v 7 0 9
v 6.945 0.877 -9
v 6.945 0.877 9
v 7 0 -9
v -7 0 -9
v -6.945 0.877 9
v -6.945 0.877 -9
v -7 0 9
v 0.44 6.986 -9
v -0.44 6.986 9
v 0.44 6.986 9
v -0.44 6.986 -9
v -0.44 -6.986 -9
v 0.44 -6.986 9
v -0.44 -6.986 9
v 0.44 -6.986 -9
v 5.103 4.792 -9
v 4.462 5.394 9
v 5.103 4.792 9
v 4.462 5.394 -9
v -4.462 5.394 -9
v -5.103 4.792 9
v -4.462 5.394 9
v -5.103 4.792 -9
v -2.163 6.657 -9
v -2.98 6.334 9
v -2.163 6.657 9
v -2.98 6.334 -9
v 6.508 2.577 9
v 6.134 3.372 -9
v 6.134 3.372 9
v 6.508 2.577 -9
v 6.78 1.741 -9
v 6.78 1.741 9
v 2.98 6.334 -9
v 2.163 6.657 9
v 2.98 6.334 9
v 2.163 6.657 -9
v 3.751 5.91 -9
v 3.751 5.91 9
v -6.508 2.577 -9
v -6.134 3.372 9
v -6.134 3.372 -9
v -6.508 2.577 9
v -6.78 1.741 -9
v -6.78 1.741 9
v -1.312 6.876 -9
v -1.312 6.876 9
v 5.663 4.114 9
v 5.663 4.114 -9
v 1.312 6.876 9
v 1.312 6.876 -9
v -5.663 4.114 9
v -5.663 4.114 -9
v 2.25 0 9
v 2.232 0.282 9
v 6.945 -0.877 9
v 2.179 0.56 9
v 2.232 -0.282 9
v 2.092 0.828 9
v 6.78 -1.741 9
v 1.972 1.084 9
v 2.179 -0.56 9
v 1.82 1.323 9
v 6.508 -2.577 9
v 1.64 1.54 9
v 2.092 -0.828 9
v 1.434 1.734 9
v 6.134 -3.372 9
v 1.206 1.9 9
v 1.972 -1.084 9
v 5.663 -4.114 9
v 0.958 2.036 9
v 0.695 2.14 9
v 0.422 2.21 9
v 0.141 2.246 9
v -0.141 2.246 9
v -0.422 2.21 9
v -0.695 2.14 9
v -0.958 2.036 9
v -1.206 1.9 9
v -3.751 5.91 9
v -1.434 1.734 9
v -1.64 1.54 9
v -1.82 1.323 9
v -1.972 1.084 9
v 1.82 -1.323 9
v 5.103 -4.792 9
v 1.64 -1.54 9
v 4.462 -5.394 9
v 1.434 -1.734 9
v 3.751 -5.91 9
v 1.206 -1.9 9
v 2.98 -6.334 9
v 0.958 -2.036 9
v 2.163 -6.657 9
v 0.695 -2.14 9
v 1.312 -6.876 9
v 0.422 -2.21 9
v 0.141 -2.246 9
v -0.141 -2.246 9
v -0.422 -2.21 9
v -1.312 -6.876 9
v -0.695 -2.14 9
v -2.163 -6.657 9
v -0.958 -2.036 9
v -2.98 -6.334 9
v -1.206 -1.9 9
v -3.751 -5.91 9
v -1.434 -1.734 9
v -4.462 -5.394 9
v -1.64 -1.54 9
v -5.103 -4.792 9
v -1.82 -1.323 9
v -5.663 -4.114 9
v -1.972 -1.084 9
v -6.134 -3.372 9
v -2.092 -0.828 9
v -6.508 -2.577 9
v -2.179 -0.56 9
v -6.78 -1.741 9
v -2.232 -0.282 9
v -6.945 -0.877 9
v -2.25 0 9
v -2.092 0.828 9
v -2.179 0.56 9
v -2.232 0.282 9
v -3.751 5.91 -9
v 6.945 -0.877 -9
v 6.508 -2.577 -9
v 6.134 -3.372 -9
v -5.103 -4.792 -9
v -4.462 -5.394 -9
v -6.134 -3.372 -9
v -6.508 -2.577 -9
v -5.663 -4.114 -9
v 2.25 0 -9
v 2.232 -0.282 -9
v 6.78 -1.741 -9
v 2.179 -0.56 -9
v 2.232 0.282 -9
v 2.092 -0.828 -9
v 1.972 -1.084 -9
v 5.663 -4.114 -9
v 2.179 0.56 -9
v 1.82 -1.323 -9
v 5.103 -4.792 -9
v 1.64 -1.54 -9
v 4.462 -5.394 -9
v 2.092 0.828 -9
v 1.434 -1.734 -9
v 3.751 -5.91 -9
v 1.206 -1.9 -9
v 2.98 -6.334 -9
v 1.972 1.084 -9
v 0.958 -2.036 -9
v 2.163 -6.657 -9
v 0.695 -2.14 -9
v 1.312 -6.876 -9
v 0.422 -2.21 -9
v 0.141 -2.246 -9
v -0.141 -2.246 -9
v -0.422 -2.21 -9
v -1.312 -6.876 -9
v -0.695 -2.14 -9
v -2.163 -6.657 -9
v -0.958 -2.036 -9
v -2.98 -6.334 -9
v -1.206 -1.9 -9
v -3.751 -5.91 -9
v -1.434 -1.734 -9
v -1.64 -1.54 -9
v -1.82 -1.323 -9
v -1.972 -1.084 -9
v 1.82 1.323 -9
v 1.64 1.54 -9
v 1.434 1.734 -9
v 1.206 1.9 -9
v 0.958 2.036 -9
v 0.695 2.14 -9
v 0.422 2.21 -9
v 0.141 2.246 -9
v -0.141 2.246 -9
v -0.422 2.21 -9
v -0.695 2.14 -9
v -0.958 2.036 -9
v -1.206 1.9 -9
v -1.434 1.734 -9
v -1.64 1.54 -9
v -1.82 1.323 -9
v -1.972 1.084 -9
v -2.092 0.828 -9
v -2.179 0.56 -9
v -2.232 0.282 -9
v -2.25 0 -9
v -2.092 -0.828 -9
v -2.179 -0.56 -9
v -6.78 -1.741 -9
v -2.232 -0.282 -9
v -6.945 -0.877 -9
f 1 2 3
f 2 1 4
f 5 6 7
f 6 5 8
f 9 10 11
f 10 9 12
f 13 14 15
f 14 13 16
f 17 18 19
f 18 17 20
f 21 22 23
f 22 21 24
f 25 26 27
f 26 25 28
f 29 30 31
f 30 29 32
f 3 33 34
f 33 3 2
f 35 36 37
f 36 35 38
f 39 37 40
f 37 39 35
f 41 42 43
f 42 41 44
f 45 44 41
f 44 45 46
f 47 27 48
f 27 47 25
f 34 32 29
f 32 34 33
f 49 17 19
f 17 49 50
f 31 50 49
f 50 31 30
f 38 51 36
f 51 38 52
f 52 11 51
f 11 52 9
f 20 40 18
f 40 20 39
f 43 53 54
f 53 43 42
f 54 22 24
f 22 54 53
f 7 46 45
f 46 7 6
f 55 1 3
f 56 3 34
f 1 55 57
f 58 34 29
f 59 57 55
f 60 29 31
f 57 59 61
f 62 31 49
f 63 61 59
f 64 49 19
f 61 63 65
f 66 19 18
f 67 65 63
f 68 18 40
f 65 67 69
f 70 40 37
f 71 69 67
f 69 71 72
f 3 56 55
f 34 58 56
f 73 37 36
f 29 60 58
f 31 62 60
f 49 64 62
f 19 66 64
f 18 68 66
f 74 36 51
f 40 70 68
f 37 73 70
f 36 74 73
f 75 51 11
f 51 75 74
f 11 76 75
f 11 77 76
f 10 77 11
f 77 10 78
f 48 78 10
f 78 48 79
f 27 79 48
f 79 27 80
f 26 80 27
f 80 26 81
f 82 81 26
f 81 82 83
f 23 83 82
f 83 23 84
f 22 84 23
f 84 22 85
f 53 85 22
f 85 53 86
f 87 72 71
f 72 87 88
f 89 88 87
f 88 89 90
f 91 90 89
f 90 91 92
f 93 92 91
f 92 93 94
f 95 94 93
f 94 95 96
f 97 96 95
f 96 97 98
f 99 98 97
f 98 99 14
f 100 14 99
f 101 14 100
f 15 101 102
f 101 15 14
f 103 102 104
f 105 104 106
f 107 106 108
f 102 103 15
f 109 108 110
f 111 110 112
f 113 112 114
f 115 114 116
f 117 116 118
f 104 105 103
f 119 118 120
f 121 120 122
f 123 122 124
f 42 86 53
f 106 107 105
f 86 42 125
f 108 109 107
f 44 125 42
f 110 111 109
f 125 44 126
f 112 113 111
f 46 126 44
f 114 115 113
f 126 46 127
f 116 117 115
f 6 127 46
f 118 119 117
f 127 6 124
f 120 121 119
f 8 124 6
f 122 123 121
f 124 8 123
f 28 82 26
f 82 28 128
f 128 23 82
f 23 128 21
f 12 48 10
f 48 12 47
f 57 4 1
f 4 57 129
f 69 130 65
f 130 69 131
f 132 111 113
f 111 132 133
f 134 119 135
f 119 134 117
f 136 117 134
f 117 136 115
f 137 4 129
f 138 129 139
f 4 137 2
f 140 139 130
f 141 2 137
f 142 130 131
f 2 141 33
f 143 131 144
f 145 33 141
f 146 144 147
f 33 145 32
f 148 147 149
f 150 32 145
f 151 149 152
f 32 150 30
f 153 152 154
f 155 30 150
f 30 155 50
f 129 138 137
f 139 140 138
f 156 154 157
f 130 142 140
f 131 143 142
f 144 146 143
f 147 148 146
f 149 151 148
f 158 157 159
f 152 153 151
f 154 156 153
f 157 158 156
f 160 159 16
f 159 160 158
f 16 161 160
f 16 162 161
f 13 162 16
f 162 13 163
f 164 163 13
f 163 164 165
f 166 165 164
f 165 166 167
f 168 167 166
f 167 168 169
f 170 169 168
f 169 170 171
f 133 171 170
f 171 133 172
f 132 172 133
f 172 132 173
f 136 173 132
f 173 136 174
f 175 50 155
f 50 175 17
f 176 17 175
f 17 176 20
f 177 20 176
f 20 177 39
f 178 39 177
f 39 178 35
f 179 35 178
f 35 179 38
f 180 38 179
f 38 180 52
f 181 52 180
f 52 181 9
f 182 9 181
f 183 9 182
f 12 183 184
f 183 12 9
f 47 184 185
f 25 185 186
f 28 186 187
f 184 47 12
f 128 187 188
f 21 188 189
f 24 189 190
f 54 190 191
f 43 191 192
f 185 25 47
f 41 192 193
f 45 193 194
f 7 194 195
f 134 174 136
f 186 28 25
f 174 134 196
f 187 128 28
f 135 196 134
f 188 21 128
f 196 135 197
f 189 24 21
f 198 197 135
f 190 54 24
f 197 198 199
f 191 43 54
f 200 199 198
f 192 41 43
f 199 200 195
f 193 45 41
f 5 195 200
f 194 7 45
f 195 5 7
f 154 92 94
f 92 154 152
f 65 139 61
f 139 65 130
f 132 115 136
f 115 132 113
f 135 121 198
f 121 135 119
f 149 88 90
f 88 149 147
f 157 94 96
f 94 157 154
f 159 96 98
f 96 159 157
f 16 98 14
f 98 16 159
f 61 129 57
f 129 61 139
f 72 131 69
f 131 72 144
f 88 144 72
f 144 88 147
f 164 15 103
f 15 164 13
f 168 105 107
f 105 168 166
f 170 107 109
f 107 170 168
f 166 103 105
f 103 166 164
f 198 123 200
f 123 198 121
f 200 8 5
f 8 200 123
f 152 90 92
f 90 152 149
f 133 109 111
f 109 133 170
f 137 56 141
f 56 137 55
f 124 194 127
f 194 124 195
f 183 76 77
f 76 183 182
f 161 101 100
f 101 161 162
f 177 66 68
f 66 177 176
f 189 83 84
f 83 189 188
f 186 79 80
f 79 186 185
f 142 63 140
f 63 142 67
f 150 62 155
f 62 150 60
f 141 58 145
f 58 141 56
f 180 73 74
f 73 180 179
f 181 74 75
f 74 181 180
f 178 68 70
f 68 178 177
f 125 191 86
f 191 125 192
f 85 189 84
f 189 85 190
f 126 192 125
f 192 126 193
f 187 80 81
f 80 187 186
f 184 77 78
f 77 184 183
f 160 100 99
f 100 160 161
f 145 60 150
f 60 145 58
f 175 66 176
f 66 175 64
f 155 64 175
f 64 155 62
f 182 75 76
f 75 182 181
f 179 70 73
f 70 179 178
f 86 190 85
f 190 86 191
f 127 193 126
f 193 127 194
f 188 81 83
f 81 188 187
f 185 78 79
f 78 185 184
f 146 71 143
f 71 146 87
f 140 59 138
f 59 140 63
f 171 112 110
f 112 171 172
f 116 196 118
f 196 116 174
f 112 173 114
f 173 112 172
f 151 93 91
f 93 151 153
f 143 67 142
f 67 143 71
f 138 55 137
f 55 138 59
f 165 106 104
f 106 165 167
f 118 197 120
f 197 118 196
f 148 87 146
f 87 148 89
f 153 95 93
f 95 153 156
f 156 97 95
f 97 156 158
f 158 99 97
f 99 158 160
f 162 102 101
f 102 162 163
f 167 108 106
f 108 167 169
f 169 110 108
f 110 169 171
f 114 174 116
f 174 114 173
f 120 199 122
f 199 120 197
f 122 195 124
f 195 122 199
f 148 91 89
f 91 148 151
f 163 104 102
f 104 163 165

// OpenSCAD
$fn = 50;


difference() {
	union() {
		translate(v = [0, 0, -9.0000000000]) {
			cylinder(h = 18, r = 7.0000000000);
		}
	}
	union() {
		translate(v = [0, 0, -100.0000000000]) {
			cylinder(h = 200, r = 2.2500000000);
		}
	}
}
